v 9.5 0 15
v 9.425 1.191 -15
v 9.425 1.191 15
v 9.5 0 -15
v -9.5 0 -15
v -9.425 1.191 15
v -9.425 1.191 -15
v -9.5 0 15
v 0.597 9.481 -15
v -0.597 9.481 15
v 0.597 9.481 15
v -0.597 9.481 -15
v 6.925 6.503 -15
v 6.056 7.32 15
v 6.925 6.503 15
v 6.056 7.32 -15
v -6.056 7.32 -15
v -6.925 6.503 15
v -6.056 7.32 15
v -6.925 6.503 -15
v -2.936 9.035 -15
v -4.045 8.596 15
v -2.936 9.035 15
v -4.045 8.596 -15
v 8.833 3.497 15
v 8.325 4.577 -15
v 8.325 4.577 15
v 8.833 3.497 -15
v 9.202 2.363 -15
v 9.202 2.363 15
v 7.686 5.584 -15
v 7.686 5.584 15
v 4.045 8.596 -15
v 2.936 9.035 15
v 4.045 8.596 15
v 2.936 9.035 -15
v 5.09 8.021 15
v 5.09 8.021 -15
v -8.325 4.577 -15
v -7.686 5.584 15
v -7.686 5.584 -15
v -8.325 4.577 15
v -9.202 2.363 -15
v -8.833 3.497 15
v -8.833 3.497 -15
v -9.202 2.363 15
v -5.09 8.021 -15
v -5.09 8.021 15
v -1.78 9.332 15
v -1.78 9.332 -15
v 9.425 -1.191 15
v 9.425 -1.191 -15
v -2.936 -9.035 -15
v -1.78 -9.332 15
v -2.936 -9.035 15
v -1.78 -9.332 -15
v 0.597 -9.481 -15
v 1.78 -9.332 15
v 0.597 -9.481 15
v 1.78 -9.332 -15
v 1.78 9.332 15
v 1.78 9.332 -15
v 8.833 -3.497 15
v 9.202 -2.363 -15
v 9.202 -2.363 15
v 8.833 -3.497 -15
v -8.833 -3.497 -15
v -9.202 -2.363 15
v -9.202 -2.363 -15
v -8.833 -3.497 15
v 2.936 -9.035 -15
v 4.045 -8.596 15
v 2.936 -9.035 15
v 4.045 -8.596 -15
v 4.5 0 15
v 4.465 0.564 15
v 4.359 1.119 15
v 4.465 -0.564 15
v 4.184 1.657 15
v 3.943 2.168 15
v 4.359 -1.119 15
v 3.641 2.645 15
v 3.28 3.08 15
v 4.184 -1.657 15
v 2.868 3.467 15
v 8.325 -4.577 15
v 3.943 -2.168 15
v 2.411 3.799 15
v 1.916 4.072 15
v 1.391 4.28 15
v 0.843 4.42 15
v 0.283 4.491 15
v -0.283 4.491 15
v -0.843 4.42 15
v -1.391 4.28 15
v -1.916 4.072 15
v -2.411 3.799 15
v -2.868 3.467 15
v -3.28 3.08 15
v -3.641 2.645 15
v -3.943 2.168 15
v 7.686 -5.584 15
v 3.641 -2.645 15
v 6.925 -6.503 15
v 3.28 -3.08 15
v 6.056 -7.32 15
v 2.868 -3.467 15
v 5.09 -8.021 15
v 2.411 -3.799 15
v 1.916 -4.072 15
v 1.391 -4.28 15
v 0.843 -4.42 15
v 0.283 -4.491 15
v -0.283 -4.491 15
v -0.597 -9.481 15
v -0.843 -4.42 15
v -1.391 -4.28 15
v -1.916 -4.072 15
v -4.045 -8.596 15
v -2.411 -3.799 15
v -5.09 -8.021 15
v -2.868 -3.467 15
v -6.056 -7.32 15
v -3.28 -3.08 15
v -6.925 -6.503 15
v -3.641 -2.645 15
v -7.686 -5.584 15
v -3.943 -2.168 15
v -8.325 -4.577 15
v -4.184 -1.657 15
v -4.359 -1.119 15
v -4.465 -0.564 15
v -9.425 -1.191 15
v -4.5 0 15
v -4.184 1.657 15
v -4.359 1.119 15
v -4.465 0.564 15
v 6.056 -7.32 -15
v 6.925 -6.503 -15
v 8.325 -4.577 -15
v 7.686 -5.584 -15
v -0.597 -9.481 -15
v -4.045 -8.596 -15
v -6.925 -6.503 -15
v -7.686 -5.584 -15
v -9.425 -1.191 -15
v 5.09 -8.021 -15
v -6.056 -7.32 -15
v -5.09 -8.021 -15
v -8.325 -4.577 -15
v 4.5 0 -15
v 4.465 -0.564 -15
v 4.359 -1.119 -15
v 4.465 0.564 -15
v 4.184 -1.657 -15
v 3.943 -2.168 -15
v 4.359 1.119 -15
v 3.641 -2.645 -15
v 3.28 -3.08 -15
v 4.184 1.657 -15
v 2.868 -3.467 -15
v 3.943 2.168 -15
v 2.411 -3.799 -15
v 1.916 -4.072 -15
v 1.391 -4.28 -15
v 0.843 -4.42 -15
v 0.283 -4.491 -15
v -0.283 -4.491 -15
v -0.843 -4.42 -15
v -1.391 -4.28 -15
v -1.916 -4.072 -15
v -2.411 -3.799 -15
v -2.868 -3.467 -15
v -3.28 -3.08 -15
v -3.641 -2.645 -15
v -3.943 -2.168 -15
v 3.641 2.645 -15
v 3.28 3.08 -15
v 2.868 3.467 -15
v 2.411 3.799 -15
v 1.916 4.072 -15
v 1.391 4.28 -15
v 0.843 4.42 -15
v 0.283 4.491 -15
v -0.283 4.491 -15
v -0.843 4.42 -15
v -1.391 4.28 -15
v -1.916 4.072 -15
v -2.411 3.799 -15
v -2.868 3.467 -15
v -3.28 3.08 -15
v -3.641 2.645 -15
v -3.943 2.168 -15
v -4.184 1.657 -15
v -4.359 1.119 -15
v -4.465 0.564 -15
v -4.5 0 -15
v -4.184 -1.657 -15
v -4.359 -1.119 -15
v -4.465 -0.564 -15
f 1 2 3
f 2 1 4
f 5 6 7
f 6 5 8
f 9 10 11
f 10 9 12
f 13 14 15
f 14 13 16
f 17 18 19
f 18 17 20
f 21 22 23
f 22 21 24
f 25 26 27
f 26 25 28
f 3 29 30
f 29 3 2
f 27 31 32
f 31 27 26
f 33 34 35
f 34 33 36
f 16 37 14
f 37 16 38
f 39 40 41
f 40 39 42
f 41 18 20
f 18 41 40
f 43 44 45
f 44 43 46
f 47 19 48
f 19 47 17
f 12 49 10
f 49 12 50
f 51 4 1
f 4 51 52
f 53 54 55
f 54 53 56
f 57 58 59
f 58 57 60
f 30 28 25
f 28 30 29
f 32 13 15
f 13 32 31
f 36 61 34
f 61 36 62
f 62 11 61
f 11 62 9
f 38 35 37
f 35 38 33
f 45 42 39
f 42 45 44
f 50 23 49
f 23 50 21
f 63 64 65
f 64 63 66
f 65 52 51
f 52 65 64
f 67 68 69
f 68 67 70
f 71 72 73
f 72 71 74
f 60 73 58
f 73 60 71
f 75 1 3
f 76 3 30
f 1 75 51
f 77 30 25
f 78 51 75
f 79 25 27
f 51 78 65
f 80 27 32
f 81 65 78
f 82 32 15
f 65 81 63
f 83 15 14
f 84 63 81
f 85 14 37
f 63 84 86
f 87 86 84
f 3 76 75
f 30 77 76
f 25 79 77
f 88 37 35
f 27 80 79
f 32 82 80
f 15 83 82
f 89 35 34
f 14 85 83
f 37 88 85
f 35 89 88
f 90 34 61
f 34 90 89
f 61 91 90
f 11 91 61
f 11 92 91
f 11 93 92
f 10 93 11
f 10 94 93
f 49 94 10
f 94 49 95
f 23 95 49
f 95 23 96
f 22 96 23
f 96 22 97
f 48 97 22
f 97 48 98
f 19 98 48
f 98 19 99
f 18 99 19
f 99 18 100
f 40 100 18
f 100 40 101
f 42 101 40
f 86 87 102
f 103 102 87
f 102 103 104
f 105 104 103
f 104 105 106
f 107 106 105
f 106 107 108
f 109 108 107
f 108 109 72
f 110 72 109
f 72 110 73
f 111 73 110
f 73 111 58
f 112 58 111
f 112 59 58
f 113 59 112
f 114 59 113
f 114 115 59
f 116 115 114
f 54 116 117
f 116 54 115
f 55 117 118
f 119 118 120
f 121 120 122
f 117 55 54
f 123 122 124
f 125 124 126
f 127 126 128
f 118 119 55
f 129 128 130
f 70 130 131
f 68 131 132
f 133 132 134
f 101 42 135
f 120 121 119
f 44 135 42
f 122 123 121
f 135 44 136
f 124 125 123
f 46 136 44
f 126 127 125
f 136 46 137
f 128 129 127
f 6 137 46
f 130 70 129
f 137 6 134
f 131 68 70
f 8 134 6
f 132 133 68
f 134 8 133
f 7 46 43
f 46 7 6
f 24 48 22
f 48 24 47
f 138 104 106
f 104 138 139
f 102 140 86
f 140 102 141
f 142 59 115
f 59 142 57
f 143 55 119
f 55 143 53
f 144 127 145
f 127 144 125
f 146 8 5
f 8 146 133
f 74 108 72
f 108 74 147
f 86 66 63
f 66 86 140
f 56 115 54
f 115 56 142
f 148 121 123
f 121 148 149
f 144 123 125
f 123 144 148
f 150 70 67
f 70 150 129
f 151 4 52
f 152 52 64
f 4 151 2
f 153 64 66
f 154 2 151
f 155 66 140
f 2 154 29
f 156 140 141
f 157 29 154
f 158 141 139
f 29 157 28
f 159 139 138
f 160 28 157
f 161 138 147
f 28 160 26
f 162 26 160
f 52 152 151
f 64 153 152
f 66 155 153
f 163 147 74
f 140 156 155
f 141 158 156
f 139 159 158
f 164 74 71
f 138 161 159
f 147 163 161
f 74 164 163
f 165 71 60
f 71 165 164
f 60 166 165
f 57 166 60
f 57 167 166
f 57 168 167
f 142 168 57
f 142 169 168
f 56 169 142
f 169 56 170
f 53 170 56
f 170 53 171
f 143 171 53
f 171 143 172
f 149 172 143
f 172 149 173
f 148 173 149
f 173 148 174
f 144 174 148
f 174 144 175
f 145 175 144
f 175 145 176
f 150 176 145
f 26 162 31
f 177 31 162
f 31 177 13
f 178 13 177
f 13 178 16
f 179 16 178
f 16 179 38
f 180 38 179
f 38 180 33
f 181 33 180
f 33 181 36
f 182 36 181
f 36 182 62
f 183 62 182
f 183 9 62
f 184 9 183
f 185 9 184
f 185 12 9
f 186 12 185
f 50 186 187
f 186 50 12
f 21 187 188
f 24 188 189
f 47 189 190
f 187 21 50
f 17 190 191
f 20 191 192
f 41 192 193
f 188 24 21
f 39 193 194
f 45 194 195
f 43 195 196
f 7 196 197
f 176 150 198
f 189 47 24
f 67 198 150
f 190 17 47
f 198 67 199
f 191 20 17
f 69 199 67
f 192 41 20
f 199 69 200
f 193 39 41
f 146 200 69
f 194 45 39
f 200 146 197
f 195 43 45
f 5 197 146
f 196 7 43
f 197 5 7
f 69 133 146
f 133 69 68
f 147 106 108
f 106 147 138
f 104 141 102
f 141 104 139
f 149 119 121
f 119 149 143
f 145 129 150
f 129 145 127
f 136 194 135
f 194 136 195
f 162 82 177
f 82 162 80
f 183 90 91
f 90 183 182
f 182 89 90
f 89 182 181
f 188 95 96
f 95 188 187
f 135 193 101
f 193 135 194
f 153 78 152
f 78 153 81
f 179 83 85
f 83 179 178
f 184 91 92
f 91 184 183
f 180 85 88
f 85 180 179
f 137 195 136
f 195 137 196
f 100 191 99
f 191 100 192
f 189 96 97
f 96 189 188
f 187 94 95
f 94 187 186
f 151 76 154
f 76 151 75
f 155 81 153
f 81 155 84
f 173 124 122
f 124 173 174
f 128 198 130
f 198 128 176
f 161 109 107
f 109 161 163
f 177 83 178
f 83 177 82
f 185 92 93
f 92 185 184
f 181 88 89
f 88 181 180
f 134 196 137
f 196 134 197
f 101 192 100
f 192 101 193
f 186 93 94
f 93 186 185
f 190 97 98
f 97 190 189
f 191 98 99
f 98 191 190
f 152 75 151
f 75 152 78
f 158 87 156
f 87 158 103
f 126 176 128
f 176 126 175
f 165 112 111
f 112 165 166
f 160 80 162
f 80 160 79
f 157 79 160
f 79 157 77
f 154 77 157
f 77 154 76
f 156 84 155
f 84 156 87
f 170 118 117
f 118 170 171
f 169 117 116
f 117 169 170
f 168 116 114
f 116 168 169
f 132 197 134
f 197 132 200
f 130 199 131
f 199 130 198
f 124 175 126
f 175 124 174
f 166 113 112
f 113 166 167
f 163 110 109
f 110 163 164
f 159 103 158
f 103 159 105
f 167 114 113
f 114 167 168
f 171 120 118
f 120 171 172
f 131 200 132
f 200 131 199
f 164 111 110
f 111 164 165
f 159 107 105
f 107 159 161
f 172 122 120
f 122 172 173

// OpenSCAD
$fn = 50;


difference() {
	union() {
		translate(v = [0, 0, -15.0000000000]) {
			cylinder(h = 30, r = 9.5000000000);
		}
	}
	union() {
		translate(v = [0, 0, -100.0000000000]) {
			cylinder(h = 200, r = 4.5000000000);
		}
	}
}
